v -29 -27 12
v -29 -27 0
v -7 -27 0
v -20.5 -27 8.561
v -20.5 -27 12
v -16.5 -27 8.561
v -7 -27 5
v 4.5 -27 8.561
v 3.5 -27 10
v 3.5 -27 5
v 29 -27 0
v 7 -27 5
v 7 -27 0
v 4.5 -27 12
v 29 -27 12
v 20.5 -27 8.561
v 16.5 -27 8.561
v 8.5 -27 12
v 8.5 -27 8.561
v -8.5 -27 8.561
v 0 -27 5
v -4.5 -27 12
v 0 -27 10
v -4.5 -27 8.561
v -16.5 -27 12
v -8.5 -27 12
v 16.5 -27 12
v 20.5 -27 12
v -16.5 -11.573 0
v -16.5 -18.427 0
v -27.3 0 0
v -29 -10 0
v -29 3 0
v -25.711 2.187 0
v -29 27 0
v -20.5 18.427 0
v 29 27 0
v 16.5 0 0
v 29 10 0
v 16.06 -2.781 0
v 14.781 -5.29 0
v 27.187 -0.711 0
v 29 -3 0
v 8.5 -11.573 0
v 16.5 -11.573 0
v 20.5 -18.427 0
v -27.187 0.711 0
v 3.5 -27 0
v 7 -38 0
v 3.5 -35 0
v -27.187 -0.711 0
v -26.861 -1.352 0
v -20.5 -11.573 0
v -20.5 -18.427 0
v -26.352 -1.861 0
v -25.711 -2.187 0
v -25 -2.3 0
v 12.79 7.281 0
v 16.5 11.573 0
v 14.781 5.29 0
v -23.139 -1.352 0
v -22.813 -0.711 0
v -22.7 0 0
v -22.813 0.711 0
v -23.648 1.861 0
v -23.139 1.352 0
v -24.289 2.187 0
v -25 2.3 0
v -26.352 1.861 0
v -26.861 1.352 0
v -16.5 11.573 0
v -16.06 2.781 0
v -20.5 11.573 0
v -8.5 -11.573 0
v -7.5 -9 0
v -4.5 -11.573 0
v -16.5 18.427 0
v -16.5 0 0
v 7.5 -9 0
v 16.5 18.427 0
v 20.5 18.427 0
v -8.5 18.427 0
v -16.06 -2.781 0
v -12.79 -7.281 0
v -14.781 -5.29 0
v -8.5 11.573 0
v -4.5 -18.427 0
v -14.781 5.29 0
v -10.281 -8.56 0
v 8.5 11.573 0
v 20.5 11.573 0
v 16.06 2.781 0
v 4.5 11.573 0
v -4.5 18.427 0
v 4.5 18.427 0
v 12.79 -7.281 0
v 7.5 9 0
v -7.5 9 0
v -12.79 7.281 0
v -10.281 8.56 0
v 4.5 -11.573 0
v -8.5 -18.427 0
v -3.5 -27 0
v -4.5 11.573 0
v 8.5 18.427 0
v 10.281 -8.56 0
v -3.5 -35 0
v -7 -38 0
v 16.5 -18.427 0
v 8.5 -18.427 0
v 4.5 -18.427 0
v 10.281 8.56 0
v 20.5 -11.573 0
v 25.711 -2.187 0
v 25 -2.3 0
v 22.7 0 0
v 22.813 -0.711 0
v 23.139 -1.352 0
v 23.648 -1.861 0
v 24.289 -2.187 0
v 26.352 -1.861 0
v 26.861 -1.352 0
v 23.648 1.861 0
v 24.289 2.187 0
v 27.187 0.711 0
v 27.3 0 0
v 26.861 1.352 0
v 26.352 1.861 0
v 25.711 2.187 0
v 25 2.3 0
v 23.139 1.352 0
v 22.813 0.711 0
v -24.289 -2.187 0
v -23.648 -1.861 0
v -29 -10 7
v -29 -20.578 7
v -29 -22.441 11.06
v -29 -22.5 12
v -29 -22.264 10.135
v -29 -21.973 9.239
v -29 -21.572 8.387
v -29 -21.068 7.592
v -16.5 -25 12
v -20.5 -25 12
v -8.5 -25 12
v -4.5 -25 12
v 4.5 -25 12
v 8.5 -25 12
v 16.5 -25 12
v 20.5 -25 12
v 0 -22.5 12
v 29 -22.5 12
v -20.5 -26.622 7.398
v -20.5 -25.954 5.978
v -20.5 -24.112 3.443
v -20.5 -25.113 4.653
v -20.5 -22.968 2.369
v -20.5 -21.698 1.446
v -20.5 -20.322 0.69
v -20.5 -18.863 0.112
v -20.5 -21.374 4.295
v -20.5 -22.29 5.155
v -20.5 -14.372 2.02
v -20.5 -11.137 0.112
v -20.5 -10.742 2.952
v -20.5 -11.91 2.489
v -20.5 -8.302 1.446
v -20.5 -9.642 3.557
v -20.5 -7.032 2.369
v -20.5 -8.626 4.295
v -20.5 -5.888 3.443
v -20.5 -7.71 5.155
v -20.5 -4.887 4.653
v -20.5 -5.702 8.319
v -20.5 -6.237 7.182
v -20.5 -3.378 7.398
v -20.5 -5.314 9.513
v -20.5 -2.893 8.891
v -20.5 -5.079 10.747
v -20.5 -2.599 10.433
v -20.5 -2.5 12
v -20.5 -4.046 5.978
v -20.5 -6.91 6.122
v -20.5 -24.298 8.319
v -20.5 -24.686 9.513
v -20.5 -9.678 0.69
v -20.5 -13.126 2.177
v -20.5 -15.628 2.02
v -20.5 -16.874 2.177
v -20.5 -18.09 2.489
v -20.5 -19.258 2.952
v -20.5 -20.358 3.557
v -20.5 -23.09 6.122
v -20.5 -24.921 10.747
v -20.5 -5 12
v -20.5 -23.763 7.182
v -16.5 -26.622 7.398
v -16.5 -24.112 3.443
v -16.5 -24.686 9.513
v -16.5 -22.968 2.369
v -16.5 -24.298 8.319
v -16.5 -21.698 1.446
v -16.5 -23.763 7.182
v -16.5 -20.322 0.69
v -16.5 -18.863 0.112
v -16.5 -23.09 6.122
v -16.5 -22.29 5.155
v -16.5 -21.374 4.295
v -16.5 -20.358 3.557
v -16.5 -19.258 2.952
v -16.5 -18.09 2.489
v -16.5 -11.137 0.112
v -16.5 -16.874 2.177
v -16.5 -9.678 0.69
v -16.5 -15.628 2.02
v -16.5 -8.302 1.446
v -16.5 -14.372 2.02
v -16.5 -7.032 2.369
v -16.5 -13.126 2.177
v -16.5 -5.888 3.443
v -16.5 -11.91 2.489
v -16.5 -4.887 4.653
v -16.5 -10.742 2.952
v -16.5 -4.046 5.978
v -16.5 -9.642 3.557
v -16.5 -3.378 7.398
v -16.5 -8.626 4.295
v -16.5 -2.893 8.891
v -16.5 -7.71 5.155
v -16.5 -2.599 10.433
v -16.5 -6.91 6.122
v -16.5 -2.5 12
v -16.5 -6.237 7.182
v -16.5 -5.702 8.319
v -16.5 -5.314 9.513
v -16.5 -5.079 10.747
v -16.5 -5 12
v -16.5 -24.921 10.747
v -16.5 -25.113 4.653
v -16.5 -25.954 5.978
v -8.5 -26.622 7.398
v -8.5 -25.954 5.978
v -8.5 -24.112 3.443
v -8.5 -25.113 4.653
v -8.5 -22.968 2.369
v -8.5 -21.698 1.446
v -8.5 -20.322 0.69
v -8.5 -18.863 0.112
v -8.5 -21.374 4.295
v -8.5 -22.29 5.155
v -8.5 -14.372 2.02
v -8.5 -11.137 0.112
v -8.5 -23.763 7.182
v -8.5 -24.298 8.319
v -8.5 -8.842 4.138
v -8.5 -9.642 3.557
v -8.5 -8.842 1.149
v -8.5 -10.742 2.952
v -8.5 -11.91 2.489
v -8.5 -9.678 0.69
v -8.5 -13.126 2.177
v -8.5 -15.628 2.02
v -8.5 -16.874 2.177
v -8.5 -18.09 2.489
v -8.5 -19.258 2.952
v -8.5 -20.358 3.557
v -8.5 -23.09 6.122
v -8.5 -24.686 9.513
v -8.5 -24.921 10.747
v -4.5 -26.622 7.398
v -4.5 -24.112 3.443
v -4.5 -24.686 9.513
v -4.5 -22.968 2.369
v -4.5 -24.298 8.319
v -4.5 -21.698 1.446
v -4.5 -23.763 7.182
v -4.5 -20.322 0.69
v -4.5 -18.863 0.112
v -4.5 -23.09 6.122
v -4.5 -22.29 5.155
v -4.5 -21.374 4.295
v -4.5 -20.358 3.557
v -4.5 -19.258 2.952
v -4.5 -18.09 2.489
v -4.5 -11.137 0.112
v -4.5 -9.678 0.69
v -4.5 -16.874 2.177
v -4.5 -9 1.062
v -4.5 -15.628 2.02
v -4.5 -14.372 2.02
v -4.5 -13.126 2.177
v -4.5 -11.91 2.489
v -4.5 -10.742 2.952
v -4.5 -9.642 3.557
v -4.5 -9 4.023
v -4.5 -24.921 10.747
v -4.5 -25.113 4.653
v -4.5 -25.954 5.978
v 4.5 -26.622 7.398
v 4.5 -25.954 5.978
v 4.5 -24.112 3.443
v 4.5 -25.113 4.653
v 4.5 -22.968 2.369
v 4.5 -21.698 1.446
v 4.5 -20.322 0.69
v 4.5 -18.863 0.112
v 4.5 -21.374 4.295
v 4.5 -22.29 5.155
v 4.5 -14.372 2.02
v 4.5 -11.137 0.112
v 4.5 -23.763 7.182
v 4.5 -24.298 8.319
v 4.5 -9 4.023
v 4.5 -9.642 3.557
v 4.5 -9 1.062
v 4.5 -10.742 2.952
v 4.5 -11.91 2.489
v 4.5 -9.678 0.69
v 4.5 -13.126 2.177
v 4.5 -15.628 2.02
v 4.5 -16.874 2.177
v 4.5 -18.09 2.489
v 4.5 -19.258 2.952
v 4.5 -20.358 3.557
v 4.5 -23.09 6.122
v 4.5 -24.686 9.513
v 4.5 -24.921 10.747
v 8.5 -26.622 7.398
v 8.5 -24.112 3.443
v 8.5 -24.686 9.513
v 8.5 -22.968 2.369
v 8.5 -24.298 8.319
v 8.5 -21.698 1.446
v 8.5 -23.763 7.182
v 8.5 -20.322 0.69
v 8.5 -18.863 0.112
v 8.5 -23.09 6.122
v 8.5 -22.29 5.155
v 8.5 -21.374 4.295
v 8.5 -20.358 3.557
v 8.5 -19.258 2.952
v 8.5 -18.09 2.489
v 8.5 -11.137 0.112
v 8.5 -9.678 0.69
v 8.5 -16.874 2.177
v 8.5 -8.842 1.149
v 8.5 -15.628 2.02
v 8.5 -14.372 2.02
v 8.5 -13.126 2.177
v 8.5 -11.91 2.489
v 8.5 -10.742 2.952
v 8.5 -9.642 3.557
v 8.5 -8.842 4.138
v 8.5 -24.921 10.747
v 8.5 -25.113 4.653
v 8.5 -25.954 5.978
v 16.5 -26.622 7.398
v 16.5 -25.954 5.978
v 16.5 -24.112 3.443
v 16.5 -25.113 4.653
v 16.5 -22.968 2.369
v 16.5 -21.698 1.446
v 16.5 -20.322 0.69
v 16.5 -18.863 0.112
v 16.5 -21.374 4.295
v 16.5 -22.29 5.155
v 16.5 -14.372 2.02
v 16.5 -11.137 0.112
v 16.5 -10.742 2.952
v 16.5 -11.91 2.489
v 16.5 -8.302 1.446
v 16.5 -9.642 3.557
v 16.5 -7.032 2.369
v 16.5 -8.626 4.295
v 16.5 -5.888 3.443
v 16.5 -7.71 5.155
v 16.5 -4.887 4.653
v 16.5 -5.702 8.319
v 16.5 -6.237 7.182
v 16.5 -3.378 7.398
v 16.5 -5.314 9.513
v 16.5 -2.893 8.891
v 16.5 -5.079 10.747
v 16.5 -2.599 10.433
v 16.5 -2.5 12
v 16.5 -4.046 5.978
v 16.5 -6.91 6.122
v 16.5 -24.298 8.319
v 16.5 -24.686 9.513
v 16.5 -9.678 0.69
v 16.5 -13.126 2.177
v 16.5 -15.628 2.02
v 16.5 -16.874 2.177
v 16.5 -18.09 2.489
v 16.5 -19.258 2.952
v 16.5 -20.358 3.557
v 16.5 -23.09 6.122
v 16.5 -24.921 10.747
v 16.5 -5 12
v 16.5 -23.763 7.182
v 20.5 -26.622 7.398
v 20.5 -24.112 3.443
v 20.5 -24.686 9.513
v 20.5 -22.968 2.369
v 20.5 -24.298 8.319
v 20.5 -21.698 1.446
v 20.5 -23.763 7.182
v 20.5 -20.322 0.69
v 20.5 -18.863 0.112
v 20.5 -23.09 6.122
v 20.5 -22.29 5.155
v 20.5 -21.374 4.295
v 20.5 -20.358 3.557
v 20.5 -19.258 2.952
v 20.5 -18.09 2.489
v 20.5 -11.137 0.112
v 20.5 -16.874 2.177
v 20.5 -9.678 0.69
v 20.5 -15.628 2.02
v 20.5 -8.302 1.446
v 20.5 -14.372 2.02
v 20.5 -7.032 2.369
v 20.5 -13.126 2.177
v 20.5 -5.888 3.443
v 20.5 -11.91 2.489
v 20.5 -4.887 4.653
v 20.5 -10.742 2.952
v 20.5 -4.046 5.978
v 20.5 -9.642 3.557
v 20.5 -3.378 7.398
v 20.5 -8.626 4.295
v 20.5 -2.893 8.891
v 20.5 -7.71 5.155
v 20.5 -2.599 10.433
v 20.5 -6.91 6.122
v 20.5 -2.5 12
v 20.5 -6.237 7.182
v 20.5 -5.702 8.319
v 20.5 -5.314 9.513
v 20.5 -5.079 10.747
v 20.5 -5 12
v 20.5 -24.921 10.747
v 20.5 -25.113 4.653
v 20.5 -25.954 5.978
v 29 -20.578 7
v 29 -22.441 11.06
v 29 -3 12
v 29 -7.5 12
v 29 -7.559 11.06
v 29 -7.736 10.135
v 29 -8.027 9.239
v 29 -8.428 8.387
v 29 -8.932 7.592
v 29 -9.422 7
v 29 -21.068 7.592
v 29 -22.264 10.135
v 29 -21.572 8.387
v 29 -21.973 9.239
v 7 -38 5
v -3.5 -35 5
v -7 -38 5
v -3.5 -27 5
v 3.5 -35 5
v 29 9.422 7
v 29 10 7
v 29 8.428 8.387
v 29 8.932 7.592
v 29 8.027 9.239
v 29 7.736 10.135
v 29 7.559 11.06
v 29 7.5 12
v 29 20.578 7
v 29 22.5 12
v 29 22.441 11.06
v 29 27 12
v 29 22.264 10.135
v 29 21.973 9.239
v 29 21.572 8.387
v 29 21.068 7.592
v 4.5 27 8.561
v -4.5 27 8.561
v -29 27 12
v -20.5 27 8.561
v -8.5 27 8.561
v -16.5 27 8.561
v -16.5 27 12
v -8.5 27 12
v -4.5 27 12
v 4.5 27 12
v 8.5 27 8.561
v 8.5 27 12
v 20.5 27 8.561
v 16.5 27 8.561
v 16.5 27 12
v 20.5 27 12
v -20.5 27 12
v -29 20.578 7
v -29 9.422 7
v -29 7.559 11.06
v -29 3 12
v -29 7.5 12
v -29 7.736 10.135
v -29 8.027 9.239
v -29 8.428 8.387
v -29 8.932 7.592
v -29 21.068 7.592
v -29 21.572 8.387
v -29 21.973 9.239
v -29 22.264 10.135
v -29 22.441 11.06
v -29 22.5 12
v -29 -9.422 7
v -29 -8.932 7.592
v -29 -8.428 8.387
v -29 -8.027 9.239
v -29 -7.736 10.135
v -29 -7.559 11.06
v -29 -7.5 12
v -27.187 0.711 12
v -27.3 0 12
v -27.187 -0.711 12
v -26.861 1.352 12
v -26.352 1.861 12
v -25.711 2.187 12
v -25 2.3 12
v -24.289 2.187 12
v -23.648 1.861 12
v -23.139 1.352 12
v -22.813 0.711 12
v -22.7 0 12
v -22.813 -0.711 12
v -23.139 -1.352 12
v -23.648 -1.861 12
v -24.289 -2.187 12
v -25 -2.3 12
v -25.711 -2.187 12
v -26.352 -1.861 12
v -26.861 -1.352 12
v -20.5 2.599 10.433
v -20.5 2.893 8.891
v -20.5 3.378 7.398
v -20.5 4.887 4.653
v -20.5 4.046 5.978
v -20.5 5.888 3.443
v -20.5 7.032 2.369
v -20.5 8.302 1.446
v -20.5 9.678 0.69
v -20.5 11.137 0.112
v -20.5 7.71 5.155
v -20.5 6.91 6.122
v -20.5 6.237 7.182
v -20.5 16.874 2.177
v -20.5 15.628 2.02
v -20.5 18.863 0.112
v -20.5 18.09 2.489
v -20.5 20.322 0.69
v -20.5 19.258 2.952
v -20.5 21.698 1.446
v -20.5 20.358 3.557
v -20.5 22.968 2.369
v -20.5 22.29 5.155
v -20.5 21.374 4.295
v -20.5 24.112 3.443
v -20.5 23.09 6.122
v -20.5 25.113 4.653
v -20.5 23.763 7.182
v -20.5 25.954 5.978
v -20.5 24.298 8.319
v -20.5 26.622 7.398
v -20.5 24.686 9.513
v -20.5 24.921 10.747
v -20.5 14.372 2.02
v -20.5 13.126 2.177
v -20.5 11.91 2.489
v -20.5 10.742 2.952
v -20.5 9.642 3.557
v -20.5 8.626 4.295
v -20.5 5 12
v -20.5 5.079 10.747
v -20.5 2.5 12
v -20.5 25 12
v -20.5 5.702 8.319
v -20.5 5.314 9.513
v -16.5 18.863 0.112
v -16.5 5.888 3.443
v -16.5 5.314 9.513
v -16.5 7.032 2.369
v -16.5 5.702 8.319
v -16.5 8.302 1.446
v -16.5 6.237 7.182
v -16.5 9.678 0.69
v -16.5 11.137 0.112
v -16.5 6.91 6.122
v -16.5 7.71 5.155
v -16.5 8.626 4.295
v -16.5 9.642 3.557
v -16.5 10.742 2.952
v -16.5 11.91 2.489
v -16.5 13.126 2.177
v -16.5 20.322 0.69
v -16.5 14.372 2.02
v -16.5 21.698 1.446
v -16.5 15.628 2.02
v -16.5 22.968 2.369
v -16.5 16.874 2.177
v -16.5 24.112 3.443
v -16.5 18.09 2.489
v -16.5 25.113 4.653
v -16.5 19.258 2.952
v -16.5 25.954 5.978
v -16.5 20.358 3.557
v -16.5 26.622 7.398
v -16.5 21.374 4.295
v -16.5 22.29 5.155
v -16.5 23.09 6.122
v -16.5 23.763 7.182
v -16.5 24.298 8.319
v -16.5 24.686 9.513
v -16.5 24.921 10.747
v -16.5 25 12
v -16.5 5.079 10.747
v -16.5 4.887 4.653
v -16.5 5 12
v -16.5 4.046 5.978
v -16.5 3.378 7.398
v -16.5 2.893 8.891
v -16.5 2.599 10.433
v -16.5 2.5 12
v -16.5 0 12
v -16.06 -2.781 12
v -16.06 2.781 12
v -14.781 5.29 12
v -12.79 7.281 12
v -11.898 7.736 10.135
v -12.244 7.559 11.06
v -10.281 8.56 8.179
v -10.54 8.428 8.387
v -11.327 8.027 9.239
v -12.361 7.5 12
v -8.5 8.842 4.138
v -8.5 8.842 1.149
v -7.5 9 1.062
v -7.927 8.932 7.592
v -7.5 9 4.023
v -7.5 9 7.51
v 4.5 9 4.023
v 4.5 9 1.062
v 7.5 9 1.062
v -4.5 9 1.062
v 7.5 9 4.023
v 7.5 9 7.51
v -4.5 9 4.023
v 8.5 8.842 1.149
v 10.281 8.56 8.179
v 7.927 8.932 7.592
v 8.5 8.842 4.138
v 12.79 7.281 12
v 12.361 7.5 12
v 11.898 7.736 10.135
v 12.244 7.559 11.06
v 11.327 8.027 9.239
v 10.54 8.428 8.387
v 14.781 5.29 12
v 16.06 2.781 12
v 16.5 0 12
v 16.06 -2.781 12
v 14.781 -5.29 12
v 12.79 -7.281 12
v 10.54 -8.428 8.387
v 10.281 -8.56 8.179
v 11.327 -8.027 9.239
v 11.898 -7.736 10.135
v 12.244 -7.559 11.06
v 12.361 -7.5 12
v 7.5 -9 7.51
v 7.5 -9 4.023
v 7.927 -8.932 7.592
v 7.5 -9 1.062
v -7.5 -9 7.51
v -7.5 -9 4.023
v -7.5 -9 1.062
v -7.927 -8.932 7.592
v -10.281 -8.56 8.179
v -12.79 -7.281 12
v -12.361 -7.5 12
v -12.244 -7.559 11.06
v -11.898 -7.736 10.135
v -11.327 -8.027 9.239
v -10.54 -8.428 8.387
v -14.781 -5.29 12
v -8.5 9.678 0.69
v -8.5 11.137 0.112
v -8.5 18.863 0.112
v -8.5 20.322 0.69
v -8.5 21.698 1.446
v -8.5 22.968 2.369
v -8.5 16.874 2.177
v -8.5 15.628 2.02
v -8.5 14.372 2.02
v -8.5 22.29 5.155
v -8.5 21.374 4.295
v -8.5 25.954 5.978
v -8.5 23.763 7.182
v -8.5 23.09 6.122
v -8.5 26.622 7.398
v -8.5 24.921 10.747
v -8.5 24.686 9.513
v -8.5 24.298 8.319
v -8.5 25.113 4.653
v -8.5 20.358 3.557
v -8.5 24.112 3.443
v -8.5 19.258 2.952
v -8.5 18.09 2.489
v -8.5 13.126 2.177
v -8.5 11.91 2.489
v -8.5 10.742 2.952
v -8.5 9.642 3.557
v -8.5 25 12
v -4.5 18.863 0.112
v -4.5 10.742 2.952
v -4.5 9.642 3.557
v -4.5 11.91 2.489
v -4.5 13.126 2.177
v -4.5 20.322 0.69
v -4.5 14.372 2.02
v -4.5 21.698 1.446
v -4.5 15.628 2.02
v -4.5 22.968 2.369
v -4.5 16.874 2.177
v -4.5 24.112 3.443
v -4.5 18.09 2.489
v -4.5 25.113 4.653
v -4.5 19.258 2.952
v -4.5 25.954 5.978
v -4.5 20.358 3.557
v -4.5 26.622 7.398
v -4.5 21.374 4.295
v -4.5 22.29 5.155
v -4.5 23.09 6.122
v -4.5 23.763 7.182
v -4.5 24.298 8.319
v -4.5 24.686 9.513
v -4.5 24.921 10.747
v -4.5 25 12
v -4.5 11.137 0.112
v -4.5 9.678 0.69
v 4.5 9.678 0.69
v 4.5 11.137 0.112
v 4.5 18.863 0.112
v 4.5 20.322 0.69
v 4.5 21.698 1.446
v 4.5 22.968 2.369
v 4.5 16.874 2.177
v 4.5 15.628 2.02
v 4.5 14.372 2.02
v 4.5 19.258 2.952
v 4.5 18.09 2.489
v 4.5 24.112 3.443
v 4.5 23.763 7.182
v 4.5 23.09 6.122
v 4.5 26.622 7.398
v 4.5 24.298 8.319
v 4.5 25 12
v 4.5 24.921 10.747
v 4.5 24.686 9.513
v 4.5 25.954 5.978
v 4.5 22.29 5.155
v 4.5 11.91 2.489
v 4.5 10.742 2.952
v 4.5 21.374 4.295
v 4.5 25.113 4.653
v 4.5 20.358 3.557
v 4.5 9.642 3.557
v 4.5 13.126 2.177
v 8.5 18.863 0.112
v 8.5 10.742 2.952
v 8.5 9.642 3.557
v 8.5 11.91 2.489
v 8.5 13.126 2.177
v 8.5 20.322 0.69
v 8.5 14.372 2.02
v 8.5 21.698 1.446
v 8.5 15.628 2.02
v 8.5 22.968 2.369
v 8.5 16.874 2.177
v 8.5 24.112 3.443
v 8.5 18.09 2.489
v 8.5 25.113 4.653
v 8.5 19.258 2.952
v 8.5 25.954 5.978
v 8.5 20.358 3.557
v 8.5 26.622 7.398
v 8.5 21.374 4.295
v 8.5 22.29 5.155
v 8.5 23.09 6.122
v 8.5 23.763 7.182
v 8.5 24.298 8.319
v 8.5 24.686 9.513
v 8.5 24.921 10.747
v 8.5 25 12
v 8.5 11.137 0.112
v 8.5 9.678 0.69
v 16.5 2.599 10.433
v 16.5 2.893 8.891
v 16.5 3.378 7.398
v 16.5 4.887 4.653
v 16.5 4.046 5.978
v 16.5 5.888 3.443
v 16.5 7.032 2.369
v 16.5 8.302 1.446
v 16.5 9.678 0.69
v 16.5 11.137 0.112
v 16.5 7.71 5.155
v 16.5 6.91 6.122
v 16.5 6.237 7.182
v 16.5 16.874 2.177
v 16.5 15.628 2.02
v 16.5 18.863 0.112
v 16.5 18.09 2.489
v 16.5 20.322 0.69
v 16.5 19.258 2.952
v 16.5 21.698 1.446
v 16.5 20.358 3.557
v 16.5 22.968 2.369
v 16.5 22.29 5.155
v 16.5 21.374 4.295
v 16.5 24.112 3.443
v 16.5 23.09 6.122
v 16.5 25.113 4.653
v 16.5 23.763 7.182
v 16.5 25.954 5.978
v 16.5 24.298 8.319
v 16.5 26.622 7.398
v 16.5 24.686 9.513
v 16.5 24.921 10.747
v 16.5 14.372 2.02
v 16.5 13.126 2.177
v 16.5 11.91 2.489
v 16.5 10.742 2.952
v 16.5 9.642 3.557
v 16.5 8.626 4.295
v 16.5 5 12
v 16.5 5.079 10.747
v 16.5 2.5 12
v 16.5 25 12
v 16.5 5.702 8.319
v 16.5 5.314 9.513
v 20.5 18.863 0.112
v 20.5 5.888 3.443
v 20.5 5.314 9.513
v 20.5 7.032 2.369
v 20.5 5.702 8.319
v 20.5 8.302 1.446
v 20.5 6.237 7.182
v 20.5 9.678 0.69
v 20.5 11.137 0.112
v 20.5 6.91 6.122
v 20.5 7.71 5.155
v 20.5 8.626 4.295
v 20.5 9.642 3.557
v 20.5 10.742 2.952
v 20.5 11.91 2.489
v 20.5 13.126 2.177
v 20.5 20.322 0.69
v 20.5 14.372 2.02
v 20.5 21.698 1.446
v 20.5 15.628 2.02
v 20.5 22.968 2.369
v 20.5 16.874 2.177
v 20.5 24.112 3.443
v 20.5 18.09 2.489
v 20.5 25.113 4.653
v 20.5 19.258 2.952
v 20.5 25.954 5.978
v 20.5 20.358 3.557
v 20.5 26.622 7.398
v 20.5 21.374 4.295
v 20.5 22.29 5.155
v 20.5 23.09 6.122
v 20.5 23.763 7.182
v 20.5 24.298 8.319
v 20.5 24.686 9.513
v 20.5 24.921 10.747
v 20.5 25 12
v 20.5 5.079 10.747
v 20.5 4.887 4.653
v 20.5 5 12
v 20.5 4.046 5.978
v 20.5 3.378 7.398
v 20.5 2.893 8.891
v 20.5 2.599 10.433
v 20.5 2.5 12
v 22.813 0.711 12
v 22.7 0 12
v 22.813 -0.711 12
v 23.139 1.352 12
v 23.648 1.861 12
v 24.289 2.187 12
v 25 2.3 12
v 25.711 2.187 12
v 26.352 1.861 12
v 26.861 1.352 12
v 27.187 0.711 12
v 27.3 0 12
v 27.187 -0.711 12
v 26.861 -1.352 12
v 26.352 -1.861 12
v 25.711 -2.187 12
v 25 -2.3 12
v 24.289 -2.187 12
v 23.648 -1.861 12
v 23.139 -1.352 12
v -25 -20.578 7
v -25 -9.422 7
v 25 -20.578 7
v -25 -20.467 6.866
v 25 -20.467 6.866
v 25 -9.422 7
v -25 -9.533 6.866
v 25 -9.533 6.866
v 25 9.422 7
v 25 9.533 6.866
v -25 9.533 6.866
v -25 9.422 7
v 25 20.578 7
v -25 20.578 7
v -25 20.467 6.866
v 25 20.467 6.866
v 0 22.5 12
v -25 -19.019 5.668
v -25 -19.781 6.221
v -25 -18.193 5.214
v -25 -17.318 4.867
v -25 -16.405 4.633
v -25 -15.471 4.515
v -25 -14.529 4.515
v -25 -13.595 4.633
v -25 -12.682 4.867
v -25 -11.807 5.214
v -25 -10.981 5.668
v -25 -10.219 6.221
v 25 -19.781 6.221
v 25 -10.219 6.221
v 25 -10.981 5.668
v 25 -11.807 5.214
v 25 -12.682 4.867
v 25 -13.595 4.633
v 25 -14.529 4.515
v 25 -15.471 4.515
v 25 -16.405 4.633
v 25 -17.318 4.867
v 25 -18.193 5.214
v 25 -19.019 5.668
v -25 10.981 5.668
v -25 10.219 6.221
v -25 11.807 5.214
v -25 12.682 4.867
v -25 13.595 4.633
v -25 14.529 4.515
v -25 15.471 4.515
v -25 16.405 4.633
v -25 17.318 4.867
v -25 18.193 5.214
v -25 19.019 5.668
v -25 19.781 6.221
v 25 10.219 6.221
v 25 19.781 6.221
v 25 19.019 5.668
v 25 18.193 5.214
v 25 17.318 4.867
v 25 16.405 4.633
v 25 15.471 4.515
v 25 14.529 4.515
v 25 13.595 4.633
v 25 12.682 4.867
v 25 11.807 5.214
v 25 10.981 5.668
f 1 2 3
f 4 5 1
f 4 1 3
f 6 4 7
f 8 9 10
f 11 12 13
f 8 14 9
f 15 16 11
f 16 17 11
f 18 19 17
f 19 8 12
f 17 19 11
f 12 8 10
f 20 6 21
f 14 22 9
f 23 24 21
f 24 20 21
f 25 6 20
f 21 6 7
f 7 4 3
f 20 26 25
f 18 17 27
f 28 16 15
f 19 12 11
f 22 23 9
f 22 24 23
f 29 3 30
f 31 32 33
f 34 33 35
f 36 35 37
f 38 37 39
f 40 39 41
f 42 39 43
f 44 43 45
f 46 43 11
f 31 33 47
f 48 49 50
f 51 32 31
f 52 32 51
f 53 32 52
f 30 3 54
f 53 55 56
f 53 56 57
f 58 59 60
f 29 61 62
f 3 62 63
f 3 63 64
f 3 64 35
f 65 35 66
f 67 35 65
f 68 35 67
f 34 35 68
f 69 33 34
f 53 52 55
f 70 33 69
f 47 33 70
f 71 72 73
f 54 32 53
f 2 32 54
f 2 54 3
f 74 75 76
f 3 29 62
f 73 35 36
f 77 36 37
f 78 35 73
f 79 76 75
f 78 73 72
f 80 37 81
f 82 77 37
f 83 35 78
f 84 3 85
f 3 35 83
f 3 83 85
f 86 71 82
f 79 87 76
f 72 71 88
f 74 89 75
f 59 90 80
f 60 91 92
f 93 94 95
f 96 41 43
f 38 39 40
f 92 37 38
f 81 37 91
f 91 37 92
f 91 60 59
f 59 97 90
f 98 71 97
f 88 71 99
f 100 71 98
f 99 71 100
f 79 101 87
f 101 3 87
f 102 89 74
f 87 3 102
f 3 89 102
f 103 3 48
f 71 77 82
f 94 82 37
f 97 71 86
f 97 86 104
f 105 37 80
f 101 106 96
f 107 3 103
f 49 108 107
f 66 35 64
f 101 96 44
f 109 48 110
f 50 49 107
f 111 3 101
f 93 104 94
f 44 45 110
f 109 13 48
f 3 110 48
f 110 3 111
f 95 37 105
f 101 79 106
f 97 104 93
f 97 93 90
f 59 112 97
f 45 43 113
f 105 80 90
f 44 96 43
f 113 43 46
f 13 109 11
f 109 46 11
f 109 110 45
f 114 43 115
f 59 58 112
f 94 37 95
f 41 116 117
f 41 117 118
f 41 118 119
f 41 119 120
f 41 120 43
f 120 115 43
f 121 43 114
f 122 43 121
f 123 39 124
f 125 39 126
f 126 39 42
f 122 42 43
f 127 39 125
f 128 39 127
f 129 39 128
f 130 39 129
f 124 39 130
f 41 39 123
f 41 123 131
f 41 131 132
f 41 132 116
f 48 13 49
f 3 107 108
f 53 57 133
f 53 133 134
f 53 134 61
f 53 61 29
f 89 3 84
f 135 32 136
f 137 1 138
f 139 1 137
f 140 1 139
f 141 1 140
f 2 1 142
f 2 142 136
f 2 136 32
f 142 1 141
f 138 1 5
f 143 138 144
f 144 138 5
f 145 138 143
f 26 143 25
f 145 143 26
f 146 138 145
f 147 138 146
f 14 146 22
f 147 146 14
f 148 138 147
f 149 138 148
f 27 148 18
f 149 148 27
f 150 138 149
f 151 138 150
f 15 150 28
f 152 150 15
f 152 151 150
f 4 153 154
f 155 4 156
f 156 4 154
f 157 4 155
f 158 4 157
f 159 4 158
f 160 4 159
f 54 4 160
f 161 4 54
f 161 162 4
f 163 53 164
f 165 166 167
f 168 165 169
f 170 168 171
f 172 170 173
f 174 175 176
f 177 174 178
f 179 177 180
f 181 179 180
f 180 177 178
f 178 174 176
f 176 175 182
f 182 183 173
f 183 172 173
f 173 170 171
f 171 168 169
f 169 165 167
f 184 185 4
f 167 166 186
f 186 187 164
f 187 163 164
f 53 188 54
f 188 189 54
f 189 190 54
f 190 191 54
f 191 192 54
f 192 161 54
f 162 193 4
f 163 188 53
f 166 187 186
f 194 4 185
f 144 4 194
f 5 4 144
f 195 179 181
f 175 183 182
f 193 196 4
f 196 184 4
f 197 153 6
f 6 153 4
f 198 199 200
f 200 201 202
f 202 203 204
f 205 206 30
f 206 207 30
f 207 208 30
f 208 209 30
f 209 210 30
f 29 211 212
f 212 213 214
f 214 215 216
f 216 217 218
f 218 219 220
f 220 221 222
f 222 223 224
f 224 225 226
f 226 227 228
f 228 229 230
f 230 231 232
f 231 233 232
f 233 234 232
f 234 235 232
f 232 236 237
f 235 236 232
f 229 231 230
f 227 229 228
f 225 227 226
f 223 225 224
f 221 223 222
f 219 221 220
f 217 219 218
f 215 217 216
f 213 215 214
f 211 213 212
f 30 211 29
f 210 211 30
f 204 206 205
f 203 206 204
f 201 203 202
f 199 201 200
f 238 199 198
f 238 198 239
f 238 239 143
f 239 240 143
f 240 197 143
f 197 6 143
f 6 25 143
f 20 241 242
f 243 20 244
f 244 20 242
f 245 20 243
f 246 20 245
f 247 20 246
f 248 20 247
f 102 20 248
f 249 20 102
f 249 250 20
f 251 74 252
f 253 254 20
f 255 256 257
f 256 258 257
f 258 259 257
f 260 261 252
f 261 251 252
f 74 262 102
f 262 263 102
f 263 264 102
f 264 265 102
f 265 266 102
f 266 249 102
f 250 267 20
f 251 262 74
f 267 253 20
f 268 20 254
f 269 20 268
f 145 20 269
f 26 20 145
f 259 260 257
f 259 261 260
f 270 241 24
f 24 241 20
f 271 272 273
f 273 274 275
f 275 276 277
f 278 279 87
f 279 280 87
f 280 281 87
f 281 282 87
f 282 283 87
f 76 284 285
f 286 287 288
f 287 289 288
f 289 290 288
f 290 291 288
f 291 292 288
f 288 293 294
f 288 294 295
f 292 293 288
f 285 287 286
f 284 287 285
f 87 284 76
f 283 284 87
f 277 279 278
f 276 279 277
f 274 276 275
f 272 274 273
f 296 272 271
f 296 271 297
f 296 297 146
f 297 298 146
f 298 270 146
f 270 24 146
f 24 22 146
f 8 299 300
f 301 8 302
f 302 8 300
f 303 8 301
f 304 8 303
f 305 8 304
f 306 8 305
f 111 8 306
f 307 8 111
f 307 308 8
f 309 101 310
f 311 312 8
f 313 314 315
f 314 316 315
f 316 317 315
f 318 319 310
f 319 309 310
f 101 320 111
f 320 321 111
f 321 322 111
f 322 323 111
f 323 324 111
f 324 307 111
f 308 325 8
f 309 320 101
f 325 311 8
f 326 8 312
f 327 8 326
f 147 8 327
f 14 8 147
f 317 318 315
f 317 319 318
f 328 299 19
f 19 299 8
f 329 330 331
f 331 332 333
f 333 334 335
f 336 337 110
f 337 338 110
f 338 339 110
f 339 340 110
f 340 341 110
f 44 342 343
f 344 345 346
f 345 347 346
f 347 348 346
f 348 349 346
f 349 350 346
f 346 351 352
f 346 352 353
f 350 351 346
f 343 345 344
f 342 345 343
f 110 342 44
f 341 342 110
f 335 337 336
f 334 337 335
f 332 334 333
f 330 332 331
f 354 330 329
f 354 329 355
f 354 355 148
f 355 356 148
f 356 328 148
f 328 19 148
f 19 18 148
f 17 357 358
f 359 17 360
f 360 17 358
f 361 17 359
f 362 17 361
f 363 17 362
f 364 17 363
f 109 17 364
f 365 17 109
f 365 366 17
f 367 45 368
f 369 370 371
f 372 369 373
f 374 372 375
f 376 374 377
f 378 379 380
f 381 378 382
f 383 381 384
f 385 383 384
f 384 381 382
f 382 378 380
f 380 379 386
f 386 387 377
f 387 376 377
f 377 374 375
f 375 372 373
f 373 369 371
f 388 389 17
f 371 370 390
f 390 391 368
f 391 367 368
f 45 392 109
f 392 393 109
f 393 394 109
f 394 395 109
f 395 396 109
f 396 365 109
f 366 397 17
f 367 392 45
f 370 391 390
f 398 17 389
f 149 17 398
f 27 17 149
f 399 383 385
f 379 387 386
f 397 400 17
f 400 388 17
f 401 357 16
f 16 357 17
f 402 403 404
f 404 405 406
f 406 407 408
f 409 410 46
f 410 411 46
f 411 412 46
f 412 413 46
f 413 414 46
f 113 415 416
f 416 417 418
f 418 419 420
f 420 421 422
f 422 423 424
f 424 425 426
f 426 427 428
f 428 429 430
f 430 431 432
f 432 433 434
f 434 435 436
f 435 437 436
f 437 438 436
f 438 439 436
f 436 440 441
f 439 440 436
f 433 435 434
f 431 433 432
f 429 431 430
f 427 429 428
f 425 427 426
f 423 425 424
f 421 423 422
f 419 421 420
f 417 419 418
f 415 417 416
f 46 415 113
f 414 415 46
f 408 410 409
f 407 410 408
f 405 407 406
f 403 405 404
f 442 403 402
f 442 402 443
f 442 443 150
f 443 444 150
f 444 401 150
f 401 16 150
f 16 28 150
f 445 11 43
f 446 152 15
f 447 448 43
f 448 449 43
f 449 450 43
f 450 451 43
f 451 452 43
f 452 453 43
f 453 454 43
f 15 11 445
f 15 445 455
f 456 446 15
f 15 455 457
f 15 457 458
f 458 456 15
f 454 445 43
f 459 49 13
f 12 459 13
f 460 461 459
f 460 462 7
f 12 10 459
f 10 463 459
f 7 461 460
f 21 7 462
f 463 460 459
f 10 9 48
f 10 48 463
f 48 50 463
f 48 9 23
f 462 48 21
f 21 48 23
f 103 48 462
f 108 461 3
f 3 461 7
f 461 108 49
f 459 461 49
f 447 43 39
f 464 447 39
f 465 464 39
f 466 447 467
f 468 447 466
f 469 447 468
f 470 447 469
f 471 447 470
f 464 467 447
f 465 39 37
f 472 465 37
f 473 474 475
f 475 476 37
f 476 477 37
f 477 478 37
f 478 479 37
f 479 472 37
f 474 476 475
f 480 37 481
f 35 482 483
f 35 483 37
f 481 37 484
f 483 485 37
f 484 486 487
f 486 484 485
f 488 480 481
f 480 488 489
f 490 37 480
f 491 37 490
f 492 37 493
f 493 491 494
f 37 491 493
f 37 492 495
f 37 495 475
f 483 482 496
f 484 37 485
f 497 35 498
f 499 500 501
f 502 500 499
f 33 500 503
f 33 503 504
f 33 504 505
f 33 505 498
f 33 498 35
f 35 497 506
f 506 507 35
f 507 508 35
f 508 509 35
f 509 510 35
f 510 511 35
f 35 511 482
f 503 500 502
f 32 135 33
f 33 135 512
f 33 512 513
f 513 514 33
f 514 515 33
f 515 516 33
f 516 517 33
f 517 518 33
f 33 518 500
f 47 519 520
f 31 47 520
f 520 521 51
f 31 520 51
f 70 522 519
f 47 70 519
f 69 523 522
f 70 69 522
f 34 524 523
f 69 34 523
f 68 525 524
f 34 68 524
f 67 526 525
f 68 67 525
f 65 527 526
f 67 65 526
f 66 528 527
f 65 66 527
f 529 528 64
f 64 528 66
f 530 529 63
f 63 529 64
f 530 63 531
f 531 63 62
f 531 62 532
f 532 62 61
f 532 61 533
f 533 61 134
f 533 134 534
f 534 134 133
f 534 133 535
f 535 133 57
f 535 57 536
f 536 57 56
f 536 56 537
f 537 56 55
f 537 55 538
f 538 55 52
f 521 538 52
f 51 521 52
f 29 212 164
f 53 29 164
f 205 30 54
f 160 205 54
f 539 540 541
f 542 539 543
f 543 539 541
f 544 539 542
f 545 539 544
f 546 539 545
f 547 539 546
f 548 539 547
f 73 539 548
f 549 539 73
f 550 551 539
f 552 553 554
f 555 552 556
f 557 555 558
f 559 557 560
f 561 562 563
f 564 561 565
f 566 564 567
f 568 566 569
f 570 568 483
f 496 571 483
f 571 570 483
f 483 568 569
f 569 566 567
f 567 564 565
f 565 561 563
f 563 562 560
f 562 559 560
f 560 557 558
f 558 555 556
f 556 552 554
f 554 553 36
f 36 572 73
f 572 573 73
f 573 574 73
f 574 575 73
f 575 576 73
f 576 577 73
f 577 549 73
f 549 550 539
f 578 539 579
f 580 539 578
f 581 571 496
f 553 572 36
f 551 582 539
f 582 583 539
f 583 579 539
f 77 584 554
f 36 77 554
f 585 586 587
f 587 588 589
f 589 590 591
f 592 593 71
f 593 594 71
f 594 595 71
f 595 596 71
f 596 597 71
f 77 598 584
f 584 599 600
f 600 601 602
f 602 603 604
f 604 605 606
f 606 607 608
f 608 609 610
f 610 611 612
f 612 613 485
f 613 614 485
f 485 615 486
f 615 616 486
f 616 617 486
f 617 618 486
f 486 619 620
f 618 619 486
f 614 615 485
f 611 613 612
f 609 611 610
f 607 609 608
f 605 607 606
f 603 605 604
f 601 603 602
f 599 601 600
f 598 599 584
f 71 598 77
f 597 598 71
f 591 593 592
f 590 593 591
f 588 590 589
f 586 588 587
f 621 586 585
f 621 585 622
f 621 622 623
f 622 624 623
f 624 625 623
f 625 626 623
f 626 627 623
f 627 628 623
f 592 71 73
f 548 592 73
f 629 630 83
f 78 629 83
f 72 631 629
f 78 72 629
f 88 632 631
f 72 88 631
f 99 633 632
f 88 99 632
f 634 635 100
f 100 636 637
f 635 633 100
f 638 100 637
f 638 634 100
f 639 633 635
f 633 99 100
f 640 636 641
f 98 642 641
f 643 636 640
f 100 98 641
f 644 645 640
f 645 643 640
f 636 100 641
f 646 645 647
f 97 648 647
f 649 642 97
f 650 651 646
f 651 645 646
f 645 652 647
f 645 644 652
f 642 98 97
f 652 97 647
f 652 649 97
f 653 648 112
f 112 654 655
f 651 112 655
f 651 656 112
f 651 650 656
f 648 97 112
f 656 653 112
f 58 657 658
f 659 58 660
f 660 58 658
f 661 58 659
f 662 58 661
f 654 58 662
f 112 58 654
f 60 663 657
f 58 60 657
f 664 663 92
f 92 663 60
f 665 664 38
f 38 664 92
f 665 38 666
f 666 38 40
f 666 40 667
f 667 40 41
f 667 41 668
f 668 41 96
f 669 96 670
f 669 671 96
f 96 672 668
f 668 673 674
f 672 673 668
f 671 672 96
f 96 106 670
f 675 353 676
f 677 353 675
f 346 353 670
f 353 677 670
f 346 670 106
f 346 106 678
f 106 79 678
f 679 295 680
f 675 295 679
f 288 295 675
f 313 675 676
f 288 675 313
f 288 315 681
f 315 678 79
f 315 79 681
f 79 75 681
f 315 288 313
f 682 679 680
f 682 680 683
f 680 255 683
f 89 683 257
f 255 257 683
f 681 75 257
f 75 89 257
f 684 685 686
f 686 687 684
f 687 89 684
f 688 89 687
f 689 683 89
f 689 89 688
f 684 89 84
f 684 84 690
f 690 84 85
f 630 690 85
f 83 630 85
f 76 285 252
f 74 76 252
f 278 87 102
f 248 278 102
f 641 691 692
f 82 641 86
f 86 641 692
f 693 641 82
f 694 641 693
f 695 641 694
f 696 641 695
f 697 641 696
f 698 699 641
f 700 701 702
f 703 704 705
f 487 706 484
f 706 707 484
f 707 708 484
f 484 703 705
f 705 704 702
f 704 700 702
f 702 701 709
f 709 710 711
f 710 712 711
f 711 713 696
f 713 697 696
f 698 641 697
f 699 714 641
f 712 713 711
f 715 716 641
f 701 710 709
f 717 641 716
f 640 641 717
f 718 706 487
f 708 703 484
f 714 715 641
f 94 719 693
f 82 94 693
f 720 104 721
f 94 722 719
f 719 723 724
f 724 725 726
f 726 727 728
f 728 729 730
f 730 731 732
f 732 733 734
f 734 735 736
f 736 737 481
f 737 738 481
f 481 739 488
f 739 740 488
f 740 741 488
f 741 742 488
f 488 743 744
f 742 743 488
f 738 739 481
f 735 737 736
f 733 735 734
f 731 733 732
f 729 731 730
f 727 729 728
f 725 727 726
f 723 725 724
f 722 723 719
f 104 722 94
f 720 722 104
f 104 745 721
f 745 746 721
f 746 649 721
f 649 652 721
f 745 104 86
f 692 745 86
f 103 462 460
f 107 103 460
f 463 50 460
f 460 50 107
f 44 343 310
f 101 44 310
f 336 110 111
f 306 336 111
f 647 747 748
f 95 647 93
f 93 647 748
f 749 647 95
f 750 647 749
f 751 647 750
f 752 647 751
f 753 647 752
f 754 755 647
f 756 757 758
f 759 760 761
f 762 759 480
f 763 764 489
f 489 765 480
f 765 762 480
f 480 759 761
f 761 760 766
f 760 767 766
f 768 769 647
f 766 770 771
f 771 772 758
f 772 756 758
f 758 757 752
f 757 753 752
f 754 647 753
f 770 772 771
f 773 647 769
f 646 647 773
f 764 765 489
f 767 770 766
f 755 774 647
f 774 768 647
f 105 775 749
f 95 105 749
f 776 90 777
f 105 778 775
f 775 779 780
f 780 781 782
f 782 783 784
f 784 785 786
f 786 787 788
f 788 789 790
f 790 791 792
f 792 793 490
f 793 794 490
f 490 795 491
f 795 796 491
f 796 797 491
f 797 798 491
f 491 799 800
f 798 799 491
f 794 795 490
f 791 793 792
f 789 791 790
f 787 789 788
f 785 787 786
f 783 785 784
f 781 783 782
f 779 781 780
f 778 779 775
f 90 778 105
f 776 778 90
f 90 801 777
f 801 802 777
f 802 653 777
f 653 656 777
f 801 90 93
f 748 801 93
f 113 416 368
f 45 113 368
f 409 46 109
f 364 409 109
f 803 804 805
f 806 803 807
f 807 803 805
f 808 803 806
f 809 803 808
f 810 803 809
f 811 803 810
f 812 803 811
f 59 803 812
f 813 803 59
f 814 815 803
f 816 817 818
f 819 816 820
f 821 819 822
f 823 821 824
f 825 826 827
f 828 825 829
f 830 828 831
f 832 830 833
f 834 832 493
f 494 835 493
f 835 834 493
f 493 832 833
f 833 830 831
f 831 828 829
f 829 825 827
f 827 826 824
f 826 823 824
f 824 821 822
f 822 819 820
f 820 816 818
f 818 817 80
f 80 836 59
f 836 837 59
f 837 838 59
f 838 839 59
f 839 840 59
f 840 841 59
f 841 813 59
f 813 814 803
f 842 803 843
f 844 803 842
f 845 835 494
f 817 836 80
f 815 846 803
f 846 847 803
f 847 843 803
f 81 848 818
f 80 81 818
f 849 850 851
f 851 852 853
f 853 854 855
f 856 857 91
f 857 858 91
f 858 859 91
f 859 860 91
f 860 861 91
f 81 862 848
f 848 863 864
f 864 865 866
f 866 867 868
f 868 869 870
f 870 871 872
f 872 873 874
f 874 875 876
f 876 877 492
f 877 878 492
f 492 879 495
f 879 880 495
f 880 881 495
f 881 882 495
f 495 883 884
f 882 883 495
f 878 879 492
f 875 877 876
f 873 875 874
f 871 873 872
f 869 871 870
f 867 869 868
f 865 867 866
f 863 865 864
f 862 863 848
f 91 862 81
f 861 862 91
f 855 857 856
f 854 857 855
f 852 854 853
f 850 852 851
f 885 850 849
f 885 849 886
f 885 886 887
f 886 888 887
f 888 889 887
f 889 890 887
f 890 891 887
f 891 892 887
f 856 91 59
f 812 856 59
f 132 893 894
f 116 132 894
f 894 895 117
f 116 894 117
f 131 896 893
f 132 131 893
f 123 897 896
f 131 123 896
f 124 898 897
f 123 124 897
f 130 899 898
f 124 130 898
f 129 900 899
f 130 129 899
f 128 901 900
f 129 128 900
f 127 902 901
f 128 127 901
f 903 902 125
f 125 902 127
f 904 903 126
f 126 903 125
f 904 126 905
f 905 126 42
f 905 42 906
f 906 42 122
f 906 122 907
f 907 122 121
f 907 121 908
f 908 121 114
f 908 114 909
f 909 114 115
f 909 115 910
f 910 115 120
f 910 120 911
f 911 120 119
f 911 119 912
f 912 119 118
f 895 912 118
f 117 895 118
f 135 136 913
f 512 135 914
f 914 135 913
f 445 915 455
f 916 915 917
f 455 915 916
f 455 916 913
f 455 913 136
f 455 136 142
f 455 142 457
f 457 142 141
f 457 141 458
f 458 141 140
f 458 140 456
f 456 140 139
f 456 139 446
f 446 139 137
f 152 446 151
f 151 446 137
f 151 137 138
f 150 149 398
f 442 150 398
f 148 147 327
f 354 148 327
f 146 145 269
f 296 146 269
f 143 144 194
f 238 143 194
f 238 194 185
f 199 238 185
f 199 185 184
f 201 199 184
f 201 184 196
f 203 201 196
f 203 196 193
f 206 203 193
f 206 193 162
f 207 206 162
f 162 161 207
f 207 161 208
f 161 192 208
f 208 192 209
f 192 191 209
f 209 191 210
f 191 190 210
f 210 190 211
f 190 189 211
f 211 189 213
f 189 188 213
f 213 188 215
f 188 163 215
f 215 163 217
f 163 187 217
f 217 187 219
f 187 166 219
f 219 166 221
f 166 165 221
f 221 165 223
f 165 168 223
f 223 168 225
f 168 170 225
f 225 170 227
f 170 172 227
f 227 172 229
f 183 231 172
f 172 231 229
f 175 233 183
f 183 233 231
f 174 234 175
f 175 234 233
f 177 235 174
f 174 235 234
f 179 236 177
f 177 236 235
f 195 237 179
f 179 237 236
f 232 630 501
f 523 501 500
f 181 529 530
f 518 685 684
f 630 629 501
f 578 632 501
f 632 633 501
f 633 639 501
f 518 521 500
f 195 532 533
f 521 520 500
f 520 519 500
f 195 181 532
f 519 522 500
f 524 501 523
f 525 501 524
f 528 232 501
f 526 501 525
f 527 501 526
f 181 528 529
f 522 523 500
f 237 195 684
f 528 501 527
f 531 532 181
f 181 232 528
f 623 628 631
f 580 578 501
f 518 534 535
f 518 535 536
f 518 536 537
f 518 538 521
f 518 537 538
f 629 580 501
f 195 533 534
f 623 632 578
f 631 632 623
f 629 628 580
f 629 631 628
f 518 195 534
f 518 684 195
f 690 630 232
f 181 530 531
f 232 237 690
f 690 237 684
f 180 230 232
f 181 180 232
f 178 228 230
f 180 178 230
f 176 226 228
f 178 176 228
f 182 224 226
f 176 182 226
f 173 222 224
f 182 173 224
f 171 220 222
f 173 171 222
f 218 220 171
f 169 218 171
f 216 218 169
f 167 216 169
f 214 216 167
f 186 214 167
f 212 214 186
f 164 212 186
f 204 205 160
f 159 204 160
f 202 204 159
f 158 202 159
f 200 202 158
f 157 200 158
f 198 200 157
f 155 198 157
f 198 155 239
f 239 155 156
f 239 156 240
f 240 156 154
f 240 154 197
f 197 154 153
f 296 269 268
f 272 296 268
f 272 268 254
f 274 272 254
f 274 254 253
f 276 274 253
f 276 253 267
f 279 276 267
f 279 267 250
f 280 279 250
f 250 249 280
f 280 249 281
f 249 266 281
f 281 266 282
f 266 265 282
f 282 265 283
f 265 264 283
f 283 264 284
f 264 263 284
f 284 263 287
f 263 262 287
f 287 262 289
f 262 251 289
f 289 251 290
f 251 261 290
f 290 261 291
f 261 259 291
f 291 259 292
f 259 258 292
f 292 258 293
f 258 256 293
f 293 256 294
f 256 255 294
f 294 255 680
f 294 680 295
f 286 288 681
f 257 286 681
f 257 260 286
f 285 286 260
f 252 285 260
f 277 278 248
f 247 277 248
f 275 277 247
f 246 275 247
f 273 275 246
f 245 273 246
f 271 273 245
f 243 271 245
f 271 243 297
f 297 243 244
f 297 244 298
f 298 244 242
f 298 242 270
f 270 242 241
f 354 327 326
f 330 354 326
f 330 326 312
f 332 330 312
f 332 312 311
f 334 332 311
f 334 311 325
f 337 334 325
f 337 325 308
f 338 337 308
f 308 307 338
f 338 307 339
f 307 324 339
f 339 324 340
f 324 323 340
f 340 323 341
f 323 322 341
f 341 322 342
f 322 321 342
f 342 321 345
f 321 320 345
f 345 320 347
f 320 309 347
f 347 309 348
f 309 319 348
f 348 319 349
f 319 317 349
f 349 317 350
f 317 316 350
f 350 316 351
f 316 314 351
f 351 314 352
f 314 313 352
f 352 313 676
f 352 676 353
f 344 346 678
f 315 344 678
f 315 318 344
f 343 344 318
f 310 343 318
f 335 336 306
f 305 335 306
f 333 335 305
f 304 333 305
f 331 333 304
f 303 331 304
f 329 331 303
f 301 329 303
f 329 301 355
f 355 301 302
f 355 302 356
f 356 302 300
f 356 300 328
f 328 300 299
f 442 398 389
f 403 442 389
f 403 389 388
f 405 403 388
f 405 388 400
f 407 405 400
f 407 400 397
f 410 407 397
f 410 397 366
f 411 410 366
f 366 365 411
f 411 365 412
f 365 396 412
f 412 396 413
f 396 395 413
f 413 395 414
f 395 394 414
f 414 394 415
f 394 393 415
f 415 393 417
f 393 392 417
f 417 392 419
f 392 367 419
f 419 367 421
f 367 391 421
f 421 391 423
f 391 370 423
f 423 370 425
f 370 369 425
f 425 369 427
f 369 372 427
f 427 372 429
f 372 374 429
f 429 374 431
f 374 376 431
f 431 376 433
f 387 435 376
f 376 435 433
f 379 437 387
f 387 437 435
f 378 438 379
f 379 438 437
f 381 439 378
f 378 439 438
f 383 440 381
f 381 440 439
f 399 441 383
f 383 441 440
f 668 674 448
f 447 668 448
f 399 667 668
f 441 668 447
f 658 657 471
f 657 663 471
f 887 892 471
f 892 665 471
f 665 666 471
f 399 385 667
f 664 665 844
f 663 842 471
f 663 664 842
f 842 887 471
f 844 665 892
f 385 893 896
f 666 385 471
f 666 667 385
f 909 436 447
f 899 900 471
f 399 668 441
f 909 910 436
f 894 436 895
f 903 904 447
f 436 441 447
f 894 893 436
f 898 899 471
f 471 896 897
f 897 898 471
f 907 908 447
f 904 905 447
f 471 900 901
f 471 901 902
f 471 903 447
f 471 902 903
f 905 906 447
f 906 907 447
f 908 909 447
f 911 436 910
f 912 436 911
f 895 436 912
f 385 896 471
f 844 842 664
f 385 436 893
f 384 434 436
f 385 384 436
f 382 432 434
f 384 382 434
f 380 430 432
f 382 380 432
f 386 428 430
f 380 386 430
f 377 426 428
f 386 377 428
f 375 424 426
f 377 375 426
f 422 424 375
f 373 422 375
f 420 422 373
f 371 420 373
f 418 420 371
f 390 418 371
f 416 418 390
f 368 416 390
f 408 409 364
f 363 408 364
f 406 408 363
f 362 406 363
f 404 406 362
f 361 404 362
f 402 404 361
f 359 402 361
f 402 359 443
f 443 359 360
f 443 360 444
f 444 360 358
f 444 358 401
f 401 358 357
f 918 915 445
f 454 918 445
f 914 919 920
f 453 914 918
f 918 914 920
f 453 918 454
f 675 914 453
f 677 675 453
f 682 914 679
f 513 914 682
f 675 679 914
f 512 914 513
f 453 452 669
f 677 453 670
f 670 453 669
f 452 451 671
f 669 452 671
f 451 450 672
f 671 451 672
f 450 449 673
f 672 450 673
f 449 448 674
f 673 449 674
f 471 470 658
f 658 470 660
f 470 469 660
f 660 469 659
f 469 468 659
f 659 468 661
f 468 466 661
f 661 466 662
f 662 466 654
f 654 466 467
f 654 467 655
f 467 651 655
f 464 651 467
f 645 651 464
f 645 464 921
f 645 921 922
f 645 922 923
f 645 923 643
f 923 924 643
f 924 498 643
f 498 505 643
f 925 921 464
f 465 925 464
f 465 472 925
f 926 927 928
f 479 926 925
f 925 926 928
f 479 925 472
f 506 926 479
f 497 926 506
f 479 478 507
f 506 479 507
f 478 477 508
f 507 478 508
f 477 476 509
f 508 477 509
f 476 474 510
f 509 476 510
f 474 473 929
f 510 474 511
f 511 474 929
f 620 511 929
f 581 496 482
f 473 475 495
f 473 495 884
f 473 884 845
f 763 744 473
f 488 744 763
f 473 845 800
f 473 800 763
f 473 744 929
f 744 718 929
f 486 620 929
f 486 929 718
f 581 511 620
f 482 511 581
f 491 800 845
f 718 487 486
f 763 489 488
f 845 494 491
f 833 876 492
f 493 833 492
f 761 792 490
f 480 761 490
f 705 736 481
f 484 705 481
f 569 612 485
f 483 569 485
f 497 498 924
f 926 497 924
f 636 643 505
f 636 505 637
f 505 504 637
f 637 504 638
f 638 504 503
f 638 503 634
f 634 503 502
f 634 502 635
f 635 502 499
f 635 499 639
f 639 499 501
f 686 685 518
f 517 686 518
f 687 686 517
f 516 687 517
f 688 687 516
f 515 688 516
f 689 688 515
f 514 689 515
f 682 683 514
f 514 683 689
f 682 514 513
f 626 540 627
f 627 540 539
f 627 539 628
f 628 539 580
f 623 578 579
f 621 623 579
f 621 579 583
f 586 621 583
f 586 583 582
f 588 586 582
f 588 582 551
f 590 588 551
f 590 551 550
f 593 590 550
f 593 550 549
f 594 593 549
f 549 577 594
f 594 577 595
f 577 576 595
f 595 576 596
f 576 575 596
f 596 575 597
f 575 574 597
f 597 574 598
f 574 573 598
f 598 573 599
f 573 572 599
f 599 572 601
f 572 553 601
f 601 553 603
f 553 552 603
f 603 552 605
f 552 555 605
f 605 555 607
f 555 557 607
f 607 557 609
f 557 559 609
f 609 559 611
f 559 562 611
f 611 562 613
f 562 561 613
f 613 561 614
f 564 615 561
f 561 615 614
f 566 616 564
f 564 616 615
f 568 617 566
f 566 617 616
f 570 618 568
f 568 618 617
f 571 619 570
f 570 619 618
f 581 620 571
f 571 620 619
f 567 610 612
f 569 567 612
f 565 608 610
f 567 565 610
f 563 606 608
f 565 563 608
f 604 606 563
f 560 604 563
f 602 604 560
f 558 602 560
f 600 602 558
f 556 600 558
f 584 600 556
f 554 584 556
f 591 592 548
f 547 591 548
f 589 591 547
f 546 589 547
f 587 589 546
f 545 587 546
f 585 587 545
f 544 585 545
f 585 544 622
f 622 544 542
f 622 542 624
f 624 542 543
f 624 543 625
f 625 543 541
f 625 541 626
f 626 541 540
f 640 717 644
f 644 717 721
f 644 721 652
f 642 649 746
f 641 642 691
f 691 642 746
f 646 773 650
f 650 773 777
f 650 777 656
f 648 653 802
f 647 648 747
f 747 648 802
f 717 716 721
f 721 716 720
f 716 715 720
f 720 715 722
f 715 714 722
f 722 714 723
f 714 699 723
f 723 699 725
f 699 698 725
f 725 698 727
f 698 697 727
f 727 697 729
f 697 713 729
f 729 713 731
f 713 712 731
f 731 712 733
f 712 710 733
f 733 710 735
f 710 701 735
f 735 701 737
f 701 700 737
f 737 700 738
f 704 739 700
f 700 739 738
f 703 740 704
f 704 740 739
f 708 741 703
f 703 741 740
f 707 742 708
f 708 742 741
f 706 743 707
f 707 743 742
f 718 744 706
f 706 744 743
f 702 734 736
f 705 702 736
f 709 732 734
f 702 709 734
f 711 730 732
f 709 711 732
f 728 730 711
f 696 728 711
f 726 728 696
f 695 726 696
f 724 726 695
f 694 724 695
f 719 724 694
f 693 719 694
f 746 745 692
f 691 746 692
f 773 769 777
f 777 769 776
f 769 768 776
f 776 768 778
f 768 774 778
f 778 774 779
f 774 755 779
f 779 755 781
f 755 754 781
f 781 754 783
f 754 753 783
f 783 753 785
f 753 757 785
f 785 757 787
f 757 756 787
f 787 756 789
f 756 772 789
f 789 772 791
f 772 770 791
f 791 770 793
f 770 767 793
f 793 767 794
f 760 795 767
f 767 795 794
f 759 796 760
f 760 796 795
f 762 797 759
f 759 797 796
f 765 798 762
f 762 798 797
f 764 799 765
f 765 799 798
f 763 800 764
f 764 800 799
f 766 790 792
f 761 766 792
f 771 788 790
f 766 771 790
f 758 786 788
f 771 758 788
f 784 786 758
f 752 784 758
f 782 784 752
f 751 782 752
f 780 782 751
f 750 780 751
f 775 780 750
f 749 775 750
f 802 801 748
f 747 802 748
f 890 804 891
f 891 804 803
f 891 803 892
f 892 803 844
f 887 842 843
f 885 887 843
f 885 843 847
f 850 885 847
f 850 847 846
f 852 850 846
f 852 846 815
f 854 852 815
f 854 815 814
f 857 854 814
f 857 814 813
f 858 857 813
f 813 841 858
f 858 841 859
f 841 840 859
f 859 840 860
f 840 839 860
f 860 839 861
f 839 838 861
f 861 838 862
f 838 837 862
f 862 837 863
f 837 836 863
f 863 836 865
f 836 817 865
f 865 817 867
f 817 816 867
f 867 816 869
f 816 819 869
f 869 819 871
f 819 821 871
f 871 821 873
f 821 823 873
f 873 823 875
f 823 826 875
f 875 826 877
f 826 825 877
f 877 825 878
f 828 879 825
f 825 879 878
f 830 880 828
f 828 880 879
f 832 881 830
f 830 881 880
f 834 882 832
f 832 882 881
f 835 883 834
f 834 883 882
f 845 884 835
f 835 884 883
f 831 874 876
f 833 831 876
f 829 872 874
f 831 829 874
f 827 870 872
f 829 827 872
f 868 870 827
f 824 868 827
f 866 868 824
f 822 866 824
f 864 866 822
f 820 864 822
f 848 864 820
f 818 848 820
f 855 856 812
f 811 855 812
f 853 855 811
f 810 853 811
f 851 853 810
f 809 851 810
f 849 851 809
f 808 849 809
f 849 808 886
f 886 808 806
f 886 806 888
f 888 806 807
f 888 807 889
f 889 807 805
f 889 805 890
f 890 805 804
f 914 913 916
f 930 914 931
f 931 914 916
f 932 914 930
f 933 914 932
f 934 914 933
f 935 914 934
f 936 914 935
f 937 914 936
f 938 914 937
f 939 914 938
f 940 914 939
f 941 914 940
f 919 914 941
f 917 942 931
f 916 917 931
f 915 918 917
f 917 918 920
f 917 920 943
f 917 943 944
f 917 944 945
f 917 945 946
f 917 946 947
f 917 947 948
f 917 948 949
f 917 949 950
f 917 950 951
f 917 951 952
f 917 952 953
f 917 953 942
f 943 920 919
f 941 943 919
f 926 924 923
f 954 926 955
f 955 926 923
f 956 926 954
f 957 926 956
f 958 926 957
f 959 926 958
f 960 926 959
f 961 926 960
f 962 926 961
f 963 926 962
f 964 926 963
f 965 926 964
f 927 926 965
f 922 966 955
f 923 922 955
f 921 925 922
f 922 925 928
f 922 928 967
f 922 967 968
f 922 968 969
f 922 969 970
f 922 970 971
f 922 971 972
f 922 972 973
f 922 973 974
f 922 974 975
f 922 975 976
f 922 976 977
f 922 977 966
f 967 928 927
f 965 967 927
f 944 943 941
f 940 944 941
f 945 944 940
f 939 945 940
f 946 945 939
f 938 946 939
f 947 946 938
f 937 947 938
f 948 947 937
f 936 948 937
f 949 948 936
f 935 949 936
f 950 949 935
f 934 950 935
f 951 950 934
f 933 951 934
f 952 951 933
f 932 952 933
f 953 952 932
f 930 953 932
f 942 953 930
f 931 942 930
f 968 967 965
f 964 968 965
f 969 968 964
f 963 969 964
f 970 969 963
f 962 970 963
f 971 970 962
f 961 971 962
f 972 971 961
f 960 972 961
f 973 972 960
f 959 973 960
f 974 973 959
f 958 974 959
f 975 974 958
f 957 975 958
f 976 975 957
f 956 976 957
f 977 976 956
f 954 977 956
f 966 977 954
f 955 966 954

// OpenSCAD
// file: bearing.scad
// PRUSA iteration3
// Bearing holders
// GNU GPL v3
// Josef Průša <iam@josefprusa.cz> and contributors
// http://www.reprap.org/wiki/Prusa_Mendel
// http://prusamendel.org

bearing_diameter = 15;

module horizontal_bearing_base(bearings=1){
 translate(v=[0,0,6]) cube(size = [24,8+bearings*25,12], center = true);	
}
module horizontal_bearing_holes(bearings=1){
 cutter_lenght = 10+bearings*25;
 one_holder_lenght = 8+25;
 holder_lenght = 8+bearings*25;
 
 // Main bearing cut
 difference(){
  translate(v=[0,0,12]) rotate(a=[90,0,0]) translate(v=[0,0,-cutter_lenght/2]) cylinder(h = cutter_lenght, r=bearing_diameter/2, $fn=50);
  // Bearing retainers
  translate(v=[0,1-holder_lenght/2,3]) cube(size = [24,6,8], center = true);
  translate(v=[0,-1+holder_lenght/2,3]) cube(size = [24,6,8], center = true);
 }
 
 // Ziptie cutouts
 ziptie_cut_ofset = 0;
 for ( i = [0 : bearings-1] ){
  // For easier positioning I move them by half of one 
  // bearing holder then add each bearign lenght and then center again
  translate(v=[0,-holder_lenght/2,0]) translate(v=[0,one_holder_lenght/2+i*25,0]) difference(){
   union(){
    translate(v=[0,2-6,12]) rotate(a=[90,0,0]) translate(v=[0,0,0]) cylinder(h = 4, r=12.5, $fn=50);
    translate(v=[0,2+6,12]) rotate(a=[90,0,0]) translate(v=[0,0,0]) cylinder(h = 4, r=12.5, $fn=50);
   }
   translate(v=[0,10,12]) rotate(a=[90,0,0]) translate(v=[0,0,0]) cylinder(h = 24, r=10, $fn=50);
  }
 }
 
}

module horizontal_bearing_test(){
 difference(){
  horizontal_bearing_base(1);
  horizontal_bearing_holes(1);
 }
 translate(v=[30,0,0]) difference(){
  horizontal_bearing_base(2);
  horizontal_bearing_holes(2);
 }
 translate(v=[60,0,0]) difference(){
  horizontal_bearing_base(3);
  horizontal_bearing_holes(3);
 }
}



thinwall = 2;
bearing_size = bearing_diameter + 2 * thinwall;

module vertical_bearing_base(height){
 translate(v=[-bearing_size/2-2,-bearing_size/2,0]) cube(size = [bearing_size/2+2,bearing_size,height], center = false);
 cylinder(h = height, r=bearing_size/2, $fn = 60);
}

module vertical_bearing_holes(height){
  translate(v=[0,0,-1]) cylinder(h = height+2, r=bearing_diameter/2, $fn = 60);
  rotate(a=[0,0,-60]) translate(v=[10,0,(height/2)+0.1]) cube(size = [10,1,height], center = true);
}

difference(){
vertical_bearing_base();
vertical_bearing_holes();
}
// main file
use <bearing.scad>
include <wallace2.scad>;

module bearing_base(){
	h=12;
	hull_w = 15;
	
	difference(){
		union(){
			translate([0,-x_rod_spacing/2,0]) rotate([0,0,90]) horizontal_bearing_base(2);
			translate([0,x_rod_spacing/2,0]) rotate([0,0,90]) horizontal_bearing_base(2);
			// middle block
			translate([0,0,h/2])cube([8+25*2,20,h],center=true);
			// side block
			translate([0,-32,5/2])cube([14,12,5],center=true);
//			translate([0,-32-5,5/2])cylinder(r=12/2,h=5,center=true);
			
		}
 		// Small bearing holder holes cutter
 		translate([0,-x_rod_spacing/2,0]) rotate([0,0,90]) horizontal_bearing_holes(2);
 		// Small bearing holder holes cutter
 		translate([0,x_rod_spacing/2,0]) rotate([0,0,90]) horizontal_bearing_holes(2);

		
		hull(){
			translate([hull_w/2,0,0]) #cylinder(h=40,r=18/2,center=true);
			translate([-hull_w/2,0,0]) #cylinder(h=40,r=18/2,center=true);
		}
	
		// screw holes for extruder
		translate([50/2,0,0])	#cylinder(h=40,r=4/2 + 0.3,center=true);
		translate([-50/2,0,0])	#cylinder(h=40,r=4/2 + 0.3,center=true);

		// side block
		translate([0,-32+1,5/2]) #cube([7,7+1,15],center=true);


	}

}

bearing_base();
